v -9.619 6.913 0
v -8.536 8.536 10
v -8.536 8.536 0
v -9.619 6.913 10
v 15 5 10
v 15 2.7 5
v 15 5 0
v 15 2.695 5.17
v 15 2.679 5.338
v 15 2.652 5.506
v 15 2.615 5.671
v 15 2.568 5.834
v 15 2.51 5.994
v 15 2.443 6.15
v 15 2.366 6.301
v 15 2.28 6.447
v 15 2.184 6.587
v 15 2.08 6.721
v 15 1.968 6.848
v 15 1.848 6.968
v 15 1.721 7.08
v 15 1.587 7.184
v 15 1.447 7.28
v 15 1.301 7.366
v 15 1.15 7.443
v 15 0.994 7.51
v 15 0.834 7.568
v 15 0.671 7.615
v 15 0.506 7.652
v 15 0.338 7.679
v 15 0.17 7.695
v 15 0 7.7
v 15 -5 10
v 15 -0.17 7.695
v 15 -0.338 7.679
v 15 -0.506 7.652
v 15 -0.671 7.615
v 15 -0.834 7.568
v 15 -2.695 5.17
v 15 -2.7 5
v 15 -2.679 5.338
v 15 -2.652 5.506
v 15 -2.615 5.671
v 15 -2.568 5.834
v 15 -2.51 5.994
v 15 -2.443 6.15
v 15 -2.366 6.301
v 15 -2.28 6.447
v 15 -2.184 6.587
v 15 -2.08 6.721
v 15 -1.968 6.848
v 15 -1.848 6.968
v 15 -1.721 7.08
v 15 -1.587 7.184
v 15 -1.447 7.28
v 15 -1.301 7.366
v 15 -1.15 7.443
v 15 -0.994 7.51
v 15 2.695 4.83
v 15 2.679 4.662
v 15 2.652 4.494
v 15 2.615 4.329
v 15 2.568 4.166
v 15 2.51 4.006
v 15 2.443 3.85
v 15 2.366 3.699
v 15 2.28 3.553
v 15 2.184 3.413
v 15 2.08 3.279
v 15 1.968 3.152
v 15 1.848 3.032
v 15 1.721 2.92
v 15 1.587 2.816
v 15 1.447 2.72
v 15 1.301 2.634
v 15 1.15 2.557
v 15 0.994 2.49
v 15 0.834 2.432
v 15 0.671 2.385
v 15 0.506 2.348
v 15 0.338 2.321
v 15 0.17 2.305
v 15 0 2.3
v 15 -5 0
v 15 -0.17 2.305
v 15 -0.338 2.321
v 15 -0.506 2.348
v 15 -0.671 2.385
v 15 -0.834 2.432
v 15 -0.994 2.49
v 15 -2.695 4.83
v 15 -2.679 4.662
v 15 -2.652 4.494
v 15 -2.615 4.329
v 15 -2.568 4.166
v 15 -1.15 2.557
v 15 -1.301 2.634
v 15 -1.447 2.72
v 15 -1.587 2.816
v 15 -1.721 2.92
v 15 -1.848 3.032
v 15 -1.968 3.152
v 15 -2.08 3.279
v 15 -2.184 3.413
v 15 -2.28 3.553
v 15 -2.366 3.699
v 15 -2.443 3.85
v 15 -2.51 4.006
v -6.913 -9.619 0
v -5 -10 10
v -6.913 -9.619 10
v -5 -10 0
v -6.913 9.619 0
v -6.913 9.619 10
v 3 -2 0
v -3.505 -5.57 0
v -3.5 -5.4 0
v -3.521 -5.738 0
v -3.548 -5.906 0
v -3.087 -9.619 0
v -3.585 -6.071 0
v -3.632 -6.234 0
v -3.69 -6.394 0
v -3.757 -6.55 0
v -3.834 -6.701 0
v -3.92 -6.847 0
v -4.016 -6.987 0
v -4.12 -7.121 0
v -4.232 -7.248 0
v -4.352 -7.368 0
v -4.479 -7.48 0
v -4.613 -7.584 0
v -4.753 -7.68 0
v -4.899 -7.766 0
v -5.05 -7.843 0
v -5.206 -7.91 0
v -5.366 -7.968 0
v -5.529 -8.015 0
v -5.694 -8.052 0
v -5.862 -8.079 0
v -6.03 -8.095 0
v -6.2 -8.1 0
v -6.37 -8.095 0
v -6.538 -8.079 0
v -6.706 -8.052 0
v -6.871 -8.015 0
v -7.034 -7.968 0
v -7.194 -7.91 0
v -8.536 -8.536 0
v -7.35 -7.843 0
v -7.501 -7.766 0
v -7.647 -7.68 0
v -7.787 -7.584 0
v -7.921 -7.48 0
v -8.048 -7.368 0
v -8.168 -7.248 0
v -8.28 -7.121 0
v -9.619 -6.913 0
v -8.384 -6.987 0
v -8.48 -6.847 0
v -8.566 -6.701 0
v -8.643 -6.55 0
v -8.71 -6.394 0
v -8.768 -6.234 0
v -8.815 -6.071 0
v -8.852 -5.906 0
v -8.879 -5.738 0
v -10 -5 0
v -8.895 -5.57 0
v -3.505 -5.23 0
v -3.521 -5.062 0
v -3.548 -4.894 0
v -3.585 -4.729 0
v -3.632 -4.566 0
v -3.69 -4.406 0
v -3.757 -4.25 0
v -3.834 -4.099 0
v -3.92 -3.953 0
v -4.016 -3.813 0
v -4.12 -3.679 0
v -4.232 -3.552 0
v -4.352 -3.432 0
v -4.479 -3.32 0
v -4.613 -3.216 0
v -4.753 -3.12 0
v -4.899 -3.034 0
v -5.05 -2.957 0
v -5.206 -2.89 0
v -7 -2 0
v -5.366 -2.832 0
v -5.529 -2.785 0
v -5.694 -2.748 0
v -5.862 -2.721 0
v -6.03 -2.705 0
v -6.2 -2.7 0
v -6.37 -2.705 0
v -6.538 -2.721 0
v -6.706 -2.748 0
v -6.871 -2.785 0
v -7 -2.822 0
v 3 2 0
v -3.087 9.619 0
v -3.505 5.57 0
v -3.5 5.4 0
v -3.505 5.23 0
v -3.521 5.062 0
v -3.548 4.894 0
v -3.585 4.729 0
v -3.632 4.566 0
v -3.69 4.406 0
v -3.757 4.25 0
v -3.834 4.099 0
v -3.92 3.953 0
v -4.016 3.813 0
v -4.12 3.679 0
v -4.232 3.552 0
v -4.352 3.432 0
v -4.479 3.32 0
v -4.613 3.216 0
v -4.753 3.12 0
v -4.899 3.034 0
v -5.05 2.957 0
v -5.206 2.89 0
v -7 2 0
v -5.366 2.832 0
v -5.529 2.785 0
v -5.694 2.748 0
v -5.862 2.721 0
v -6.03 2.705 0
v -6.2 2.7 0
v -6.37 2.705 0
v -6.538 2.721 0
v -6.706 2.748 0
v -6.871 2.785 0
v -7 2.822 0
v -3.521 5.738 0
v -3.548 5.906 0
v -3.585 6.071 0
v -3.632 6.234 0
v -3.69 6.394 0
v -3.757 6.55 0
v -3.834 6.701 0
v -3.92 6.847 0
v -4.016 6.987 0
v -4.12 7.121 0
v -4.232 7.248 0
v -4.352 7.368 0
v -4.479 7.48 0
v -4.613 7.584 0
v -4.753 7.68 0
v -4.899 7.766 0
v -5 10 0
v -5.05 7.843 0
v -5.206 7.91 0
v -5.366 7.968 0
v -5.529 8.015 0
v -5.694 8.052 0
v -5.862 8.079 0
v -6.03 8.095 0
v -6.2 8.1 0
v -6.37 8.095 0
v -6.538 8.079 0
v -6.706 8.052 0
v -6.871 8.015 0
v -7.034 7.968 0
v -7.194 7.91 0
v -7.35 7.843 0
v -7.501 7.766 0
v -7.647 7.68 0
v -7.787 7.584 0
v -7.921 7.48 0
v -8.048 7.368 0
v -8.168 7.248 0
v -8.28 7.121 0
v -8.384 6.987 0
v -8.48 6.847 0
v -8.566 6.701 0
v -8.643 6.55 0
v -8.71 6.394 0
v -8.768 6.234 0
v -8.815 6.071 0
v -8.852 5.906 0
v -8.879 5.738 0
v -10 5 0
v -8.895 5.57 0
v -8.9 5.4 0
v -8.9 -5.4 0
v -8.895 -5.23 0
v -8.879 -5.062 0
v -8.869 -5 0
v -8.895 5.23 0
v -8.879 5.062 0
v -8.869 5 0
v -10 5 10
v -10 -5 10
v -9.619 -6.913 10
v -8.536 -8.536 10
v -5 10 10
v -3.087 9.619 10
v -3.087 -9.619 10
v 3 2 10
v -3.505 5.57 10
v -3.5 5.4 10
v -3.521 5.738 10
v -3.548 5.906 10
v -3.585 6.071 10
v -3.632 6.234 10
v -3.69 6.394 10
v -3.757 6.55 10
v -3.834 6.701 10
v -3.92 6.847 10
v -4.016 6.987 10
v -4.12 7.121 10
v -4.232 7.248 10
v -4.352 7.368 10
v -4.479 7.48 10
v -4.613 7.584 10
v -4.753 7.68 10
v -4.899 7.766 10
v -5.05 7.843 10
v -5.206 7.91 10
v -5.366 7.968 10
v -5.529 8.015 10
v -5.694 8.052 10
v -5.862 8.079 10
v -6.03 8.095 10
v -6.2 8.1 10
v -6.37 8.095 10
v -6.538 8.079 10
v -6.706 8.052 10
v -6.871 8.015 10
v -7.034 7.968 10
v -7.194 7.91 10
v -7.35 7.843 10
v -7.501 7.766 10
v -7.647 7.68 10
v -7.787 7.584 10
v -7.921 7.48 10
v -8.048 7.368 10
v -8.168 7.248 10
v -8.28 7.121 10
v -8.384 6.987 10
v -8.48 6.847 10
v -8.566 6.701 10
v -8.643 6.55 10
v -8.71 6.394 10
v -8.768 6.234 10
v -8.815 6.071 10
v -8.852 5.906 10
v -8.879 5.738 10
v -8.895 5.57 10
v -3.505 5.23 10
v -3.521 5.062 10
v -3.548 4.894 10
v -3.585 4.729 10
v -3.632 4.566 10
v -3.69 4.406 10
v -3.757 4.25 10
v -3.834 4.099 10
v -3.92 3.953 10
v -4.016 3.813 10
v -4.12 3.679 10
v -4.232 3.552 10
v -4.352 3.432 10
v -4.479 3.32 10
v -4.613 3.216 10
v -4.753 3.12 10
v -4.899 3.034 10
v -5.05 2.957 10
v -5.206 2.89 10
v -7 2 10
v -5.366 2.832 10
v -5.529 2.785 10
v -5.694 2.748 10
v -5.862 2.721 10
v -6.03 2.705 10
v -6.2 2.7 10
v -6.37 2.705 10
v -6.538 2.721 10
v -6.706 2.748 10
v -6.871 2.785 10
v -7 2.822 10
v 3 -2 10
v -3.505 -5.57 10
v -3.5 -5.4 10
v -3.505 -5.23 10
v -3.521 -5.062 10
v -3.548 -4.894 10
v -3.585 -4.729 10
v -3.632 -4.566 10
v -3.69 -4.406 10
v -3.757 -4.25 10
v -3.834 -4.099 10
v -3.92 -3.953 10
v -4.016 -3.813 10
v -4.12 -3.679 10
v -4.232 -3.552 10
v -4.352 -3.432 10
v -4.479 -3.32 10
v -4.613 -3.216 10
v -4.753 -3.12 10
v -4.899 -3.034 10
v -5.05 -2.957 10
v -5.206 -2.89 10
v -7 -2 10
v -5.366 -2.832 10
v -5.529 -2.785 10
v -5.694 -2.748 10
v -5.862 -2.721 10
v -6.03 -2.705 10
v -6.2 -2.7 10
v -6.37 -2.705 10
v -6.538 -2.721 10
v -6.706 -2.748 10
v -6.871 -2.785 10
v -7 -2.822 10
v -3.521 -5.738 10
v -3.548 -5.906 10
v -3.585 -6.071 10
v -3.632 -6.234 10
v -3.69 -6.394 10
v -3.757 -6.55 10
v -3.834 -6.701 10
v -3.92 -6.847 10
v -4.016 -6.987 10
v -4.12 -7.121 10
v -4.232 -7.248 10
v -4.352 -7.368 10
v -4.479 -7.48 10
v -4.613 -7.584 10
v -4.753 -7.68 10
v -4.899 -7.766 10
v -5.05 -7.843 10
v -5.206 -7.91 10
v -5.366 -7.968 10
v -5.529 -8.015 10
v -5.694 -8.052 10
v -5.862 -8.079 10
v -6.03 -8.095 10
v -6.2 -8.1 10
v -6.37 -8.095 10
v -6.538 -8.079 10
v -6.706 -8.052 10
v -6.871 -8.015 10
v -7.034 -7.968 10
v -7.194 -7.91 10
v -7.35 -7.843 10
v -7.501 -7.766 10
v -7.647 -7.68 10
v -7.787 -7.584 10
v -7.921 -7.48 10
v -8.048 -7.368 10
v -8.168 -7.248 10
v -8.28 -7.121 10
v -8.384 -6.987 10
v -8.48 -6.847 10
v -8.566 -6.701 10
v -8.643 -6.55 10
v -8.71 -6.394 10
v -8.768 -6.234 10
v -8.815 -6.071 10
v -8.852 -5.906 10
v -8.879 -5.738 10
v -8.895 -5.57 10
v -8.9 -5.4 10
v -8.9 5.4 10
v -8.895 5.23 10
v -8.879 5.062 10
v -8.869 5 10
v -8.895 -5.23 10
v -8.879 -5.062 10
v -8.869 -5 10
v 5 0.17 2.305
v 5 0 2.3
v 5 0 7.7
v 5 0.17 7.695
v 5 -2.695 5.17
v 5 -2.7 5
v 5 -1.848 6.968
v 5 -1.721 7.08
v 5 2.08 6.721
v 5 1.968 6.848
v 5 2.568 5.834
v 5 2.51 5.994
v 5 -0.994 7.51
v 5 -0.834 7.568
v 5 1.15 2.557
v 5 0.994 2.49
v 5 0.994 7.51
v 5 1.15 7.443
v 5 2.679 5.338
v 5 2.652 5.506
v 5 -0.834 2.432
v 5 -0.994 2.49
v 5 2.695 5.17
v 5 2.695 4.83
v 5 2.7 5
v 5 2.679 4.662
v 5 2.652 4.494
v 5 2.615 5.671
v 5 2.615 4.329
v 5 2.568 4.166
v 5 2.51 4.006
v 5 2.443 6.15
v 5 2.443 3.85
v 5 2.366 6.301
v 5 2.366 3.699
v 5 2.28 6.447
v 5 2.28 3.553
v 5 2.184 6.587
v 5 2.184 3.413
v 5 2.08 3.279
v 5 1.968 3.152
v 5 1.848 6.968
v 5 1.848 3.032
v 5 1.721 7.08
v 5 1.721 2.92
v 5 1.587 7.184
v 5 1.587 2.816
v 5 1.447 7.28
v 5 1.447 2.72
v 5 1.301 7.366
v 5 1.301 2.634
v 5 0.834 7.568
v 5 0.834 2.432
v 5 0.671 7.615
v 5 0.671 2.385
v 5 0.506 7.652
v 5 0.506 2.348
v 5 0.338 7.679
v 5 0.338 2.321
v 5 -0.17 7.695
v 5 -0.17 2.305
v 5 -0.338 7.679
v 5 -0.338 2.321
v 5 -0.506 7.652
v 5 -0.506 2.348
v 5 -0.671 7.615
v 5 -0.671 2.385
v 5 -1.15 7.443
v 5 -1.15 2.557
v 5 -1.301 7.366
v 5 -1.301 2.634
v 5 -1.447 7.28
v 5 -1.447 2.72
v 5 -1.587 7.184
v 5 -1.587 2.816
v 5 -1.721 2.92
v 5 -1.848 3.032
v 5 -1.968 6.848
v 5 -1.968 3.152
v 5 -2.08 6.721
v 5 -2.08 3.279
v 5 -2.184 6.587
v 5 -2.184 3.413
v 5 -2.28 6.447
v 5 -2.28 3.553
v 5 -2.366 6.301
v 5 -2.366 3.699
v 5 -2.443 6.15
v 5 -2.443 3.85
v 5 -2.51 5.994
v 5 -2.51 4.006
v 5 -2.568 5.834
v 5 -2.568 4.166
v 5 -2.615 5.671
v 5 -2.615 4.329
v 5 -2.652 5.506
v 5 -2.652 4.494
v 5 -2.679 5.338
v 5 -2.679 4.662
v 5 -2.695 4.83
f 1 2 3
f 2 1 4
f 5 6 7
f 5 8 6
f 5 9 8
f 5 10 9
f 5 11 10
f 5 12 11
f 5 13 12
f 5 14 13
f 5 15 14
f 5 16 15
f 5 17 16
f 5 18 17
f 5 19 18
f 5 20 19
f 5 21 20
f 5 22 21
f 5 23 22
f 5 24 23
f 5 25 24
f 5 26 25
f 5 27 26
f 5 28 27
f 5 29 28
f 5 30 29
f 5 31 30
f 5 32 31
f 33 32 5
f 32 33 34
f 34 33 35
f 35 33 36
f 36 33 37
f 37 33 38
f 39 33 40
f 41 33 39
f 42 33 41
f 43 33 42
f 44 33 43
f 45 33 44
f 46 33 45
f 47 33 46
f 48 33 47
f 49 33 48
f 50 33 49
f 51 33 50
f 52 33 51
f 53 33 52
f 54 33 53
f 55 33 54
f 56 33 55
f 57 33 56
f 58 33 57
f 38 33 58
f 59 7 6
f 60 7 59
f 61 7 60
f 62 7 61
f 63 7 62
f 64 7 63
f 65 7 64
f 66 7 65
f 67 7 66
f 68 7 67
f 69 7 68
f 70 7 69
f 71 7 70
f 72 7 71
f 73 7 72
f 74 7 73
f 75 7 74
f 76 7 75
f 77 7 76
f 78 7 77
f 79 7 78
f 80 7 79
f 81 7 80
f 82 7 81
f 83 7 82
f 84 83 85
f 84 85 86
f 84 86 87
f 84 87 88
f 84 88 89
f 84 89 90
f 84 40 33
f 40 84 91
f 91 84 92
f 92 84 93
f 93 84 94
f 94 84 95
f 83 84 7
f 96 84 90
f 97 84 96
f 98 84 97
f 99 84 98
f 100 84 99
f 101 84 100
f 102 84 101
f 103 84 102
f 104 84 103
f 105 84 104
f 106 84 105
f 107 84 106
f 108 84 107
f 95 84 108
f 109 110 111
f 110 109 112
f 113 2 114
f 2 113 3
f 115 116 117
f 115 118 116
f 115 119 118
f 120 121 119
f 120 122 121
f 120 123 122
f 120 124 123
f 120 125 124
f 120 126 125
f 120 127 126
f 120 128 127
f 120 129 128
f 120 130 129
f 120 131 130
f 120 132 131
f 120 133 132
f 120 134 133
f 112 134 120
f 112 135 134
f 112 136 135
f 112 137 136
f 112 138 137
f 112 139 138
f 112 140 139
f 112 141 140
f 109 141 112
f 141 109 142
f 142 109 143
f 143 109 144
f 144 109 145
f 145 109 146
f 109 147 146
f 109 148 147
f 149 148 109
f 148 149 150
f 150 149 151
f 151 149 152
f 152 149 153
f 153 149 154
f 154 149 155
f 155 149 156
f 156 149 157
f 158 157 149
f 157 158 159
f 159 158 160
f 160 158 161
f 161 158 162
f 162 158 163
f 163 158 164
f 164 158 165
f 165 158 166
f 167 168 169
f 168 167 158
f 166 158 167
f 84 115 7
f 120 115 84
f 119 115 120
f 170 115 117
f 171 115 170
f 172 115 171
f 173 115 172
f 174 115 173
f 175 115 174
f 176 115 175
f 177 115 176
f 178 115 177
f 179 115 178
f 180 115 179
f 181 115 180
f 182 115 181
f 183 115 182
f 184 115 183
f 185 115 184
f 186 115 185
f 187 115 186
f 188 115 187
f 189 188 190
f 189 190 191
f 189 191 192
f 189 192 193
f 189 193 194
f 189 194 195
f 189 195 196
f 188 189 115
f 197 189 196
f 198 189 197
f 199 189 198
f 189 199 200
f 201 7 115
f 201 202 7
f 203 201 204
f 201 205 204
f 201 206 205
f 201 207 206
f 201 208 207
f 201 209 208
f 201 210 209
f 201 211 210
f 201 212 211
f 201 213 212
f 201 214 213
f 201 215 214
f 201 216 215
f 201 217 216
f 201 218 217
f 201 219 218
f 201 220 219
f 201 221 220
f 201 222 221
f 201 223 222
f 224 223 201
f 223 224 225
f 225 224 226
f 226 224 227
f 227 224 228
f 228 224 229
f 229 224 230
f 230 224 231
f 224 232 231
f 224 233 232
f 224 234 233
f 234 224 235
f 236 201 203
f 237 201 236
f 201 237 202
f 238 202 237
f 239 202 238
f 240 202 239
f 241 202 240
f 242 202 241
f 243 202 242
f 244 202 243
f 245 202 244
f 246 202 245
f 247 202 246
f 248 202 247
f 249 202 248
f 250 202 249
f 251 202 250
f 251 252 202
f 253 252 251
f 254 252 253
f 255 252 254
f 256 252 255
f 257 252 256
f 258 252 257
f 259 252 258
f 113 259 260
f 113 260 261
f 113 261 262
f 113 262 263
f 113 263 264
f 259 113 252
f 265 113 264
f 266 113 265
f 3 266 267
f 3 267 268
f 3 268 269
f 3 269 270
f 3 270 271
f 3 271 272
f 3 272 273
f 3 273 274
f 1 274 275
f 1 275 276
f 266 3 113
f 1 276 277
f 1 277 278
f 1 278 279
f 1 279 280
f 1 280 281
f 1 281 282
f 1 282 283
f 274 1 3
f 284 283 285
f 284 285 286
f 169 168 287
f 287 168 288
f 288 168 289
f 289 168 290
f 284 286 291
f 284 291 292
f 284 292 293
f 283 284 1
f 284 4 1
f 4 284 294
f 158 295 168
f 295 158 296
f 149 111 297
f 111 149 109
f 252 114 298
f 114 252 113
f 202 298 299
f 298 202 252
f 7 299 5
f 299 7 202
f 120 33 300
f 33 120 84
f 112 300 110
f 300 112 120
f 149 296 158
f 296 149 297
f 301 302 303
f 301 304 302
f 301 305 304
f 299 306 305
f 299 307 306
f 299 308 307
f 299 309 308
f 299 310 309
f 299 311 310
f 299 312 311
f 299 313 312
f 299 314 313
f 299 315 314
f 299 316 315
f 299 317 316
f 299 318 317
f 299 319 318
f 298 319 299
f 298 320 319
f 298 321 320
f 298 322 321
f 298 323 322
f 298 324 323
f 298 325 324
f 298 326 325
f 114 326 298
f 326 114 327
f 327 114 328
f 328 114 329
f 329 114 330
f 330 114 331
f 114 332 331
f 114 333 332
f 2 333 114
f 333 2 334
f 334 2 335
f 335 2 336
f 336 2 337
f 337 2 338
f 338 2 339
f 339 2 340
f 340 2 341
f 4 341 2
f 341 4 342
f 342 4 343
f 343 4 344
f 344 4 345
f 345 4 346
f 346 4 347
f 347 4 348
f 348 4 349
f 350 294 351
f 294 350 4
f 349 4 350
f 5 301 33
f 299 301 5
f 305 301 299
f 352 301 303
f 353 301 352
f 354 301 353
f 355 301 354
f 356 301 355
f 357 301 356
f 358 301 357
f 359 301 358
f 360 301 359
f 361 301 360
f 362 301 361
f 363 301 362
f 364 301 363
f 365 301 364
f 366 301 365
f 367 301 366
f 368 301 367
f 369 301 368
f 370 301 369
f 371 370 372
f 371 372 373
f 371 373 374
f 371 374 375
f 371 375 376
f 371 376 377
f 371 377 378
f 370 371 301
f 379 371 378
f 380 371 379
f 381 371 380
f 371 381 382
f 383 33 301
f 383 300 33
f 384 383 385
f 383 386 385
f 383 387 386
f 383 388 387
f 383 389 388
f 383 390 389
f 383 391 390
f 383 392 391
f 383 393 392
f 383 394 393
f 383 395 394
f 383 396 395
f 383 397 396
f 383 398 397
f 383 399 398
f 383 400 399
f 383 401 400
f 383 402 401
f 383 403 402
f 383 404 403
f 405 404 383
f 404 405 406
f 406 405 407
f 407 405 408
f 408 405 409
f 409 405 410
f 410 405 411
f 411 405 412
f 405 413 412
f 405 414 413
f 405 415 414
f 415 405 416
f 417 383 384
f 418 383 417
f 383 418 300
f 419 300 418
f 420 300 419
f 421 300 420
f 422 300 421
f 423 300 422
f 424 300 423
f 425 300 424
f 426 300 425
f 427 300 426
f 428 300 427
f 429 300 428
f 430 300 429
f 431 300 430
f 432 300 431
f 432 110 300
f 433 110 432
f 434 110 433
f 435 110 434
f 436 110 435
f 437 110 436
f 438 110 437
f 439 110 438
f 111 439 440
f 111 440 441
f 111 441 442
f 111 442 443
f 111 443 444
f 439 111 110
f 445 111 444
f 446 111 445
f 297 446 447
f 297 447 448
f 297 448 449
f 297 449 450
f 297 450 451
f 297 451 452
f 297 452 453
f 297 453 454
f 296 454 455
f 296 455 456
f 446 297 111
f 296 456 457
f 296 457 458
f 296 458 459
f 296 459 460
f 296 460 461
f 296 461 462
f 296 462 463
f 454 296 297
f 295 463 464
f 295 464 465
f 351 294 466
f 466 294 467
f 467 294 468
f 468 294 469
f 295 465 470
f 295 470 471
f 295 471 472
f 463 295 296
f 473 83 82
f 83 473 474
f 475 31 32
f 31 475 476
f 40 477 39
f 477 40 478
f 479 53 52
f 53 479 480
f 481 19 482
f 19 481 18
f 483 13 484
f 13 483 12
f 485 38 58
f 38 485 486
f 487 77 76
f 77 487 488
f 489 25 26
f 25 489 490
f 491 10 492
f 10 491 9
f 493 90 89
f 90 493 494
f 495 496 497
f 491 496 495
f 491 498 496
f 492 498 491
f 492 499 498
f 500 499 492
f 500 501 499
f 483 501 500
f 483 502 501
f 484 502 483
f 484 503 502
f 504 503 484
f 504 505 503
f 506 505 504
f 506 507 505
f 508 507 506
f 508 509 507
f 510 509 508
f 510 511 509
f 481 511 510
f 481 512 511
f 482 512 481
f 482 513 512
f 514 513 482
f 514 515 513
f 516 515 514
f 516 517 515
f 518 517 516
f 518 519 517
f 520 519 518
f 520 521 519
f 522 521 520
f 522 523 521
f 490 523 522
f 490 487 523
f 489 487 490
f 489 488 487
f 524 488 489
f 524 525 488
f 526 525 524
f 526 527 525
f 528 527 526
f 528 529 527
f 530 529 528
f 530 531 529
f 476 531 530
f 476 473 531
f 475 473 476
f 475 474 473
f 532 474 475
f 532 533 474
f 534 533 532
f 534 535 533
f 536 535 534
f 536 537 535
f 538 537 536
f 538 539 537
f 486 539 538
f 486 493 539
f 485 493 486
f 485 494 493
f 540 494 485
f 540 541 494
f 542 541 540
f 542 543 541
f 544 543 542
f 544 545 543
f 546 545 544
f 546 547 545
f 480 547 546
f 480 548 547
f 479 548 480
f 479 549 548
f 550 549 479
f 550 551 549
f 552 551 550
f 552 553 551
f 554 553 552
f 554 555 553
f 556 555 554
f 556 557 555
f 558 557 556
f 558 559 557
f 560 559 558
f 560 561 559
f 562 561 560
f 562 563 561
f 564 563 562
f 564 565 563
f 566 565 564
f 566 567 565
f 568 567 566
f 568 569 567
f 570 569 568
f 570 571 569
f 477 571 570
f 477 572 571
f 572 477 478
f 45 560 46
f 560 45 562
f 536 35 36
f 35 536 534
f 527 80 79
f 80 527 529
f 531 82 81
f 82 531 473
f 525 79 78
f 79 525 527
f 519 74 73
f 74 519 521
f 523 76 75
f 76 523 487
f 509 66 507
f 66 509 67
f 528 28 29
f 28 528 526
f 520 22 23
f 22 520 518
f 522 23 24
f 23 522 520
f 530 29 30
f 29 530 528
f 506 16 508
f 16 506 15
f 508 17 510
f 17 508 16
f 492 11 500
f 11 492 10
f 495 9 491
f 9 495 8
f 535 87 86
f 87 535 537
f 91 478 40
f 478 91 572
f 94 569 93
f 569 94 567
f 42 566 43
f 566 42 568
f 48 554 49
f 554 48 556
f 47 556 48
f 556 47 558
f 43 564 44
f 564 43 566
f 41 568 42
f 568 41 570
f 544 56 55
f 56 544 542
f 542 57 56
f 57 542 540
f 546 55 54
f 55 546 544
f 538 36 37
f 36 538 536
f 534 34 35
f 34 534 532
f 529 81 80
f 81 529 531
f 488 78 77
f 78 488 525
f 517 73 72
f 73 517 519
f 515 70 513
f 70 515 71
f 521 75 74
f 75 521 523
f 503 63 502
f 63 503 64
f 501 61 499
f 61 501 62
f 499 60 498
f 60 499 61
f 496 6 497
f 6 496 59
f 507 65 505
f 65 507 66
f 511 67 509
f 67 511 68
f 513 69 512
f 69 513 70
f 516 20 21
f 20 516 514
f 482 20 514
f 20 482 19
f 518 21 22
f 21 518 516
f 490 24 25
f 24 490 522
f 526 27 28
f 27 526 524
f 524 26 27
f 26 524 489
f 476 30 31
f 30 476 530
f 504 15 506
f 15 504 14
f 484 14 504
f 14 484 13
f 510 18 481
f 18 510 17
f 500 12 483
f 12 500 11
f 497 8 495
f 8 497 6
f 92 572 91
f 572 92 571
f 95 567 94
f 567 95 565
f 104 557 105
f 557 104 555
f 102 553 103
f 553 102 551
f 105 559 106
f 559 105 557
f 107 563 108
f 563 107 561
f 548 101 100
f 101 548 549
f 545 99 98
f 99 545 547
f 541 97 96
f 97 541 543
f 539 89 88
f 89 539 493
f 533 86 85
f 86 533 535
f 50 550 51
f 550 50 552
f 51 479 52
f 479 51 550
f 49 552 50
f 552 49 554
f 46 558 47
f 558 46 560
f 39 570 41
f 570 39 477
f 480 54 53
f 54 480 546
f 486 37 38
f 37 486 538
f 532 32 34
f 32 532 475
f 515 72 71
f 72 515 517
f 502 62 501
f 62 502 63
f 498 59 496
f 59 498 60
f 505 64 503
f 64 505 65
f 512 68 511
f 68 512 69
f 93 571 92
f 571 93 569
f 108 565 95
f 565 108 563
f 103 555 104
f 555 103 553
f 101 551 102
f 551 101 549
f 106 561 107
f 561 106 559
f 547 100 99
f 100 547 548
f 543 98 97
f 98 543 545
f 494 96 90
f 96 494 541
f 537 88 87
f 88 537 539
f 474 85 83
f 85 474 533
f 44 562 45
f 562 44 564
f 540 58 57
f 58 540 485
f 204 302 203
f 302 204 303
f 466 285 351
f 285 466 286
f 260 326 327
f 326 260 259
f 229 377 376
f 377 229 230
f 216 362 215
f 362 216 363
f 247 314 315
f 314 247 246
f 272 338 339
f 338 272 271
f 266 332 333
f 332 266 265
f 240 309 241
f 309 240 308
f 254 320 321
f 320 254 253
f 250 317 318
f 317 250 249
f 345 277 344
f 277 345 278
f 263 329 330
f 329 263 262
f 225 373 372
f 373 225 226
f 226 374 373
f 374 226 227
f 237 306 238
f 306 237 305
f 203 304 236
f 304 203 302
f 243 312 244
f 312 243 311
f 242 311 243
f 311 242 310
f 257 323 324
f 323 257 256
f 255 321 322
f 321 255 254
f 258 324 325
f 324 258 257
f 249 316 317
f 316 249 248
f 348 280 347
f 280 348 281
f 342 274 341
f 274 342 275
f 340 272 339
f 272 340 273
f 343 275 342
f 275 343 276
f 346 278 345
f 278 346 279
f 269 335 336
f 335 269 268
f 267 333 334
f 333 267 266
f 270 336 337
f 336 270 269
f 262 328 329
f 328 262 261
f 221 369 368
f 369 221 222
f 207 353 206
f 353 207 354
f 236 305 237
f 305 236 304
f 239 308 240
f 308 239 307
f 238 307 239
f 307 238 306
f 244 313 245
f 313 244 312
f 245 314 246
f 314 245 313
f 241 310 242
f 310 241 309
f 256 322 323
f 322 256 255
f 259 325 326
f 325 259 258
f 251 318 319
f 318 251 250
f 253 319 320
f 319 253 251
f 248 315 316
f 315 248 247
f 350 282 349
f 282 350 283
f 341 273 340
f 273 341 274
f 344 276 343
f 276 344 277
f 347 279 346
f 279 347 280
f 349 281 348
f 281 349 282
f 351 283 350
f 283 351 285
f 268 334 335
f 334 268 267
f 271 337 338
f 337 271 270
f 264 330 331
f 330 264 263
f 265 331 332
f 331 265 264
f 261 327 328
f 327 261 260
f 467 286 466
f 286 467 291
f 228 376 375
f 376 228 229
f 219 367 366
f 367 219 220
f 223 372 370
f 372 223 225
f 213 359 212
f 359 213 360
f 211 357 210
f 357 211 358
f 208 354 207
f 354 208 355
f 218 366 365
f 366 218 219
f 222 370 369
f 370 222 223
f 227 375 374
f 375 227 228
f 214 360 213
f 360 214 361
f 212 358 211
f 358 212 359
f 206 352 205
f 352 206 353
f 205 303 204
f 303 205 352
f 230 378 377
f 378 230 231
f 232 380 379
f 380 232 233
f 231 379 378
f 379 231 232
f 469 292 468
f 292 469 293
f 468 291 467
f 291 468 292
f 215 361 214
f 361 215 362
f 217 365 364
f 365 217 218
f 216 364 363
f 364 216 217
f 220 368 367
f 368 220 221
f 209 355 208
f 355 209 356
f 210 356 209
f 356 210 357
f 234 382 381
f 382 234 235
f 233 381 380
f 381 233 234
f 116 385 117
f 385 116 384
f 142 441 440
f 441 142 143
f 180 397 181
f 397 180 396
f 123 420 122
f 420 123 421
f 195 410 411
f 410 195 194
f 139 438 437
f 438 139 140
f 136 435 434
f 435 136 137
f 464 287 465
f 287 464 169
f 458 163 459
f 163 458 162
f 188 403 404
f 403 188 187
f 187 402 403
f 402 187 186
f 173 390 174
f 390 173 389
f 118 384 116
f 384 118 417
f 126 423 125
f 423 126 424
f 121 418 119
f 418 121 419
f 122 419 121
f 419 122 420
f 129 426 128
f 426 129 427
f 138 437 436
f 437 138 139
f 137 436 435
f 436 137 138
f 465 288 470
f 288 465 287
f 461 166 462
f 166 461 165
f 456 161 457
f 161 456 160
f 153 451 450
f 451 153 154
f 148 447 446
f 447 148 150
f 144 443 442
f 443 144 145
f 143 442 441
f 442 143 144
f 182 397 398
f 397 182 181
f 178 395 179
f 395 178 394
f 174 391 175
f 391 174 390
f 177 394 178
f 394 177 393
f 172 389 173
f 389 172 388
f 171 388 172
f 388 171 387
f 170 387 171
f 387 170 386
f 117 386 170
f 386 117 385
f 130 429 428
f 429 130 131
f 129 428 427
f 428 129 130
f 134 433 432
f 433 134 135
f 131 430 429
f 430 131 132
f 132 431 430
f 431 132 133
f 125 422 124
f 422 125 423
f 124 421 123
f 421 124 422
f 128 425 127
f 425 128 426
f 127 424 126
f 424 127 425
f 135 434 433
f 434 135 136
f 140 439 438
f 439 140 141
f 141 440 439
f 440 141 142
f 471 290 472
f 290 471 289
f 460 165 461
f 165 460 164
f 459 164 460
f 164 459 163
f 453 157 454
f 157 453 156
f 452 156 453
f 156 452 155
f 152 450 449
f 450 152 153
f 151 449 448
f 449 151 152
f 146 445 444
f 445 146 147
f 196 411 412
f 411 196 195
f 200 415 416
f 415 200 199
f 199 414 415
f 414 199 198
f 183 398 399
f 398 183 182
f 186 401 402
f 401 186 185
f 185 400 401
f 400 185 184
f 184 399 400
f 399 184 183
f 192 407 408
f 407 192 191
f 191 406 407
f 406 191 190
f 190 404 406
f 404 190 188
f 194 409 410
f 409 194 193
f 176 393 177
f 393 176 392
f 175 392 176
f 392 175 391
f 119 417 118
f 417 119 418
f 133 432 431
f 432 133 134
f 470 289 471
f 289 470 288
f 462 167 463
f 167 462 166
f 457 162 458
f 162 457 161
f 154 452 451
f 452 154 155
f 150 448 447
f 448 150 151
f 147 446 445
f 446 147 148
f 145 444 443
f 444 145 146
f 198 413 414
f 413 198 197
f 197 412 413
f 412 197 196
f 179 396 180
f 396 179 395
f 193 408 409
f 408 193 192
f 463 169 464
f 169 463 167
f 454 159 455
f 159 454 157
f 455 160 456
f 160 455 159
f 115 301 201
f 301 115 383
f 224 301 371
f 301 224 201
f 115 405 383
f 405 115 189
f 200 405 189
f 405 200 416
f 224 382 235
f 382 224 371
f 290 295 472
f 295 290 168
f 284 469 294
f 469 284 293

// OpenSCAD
radio_borde = 10/2;
radio_pajita = 5.4/2;
altura = 10;

difference() {
  difference() {
    soporte(altura);
    hueco_soporte();
  }
  taladros_pagitas();
  quitar_material();
}




module soporte(altura) {
  posicion_soporte = [-5, 5, 0];
  hull() {
    translate(posicion_soporte)
    cylinder(r=radio_borde, h=altura);

    mirror([0, 1, 0])
      translate(posicion_soporte)
      cylinder(r=radio_borde, h=altura);

    translate([5, -5, 0])
      cube(size=[10, 10, altura]);
  }
}

module hueco_soporte() {
  profundidad_hueco_soporte = 15;
  rotate([0, 90, 0])
    translate([-5, 0, 5])
      cylinder(r=radio_pajita, h=profundidad_hueco_soporte, $fn=100);
}


module taladros_pagitas() {
  altura_taladro = 12;
  posicion_taladro = [-6.2, 5.4, -1];

    translate(posicion_taladro)
      cylinder(r=radio_pajita, h=altura_taladro, $fn=100);

      mirror([0, 1, 0])
        translate(posicion_taladro)
        cylinder(r=radio_pajita, h=altura_taladro, $fn=100);
}

module quitar_material() {
  translate([-17, -2, 0])
    cube(size=[20, 4, 10]);
  translate([-12, -5, 0])
    cube(size=[5, 10, 10]);
}
